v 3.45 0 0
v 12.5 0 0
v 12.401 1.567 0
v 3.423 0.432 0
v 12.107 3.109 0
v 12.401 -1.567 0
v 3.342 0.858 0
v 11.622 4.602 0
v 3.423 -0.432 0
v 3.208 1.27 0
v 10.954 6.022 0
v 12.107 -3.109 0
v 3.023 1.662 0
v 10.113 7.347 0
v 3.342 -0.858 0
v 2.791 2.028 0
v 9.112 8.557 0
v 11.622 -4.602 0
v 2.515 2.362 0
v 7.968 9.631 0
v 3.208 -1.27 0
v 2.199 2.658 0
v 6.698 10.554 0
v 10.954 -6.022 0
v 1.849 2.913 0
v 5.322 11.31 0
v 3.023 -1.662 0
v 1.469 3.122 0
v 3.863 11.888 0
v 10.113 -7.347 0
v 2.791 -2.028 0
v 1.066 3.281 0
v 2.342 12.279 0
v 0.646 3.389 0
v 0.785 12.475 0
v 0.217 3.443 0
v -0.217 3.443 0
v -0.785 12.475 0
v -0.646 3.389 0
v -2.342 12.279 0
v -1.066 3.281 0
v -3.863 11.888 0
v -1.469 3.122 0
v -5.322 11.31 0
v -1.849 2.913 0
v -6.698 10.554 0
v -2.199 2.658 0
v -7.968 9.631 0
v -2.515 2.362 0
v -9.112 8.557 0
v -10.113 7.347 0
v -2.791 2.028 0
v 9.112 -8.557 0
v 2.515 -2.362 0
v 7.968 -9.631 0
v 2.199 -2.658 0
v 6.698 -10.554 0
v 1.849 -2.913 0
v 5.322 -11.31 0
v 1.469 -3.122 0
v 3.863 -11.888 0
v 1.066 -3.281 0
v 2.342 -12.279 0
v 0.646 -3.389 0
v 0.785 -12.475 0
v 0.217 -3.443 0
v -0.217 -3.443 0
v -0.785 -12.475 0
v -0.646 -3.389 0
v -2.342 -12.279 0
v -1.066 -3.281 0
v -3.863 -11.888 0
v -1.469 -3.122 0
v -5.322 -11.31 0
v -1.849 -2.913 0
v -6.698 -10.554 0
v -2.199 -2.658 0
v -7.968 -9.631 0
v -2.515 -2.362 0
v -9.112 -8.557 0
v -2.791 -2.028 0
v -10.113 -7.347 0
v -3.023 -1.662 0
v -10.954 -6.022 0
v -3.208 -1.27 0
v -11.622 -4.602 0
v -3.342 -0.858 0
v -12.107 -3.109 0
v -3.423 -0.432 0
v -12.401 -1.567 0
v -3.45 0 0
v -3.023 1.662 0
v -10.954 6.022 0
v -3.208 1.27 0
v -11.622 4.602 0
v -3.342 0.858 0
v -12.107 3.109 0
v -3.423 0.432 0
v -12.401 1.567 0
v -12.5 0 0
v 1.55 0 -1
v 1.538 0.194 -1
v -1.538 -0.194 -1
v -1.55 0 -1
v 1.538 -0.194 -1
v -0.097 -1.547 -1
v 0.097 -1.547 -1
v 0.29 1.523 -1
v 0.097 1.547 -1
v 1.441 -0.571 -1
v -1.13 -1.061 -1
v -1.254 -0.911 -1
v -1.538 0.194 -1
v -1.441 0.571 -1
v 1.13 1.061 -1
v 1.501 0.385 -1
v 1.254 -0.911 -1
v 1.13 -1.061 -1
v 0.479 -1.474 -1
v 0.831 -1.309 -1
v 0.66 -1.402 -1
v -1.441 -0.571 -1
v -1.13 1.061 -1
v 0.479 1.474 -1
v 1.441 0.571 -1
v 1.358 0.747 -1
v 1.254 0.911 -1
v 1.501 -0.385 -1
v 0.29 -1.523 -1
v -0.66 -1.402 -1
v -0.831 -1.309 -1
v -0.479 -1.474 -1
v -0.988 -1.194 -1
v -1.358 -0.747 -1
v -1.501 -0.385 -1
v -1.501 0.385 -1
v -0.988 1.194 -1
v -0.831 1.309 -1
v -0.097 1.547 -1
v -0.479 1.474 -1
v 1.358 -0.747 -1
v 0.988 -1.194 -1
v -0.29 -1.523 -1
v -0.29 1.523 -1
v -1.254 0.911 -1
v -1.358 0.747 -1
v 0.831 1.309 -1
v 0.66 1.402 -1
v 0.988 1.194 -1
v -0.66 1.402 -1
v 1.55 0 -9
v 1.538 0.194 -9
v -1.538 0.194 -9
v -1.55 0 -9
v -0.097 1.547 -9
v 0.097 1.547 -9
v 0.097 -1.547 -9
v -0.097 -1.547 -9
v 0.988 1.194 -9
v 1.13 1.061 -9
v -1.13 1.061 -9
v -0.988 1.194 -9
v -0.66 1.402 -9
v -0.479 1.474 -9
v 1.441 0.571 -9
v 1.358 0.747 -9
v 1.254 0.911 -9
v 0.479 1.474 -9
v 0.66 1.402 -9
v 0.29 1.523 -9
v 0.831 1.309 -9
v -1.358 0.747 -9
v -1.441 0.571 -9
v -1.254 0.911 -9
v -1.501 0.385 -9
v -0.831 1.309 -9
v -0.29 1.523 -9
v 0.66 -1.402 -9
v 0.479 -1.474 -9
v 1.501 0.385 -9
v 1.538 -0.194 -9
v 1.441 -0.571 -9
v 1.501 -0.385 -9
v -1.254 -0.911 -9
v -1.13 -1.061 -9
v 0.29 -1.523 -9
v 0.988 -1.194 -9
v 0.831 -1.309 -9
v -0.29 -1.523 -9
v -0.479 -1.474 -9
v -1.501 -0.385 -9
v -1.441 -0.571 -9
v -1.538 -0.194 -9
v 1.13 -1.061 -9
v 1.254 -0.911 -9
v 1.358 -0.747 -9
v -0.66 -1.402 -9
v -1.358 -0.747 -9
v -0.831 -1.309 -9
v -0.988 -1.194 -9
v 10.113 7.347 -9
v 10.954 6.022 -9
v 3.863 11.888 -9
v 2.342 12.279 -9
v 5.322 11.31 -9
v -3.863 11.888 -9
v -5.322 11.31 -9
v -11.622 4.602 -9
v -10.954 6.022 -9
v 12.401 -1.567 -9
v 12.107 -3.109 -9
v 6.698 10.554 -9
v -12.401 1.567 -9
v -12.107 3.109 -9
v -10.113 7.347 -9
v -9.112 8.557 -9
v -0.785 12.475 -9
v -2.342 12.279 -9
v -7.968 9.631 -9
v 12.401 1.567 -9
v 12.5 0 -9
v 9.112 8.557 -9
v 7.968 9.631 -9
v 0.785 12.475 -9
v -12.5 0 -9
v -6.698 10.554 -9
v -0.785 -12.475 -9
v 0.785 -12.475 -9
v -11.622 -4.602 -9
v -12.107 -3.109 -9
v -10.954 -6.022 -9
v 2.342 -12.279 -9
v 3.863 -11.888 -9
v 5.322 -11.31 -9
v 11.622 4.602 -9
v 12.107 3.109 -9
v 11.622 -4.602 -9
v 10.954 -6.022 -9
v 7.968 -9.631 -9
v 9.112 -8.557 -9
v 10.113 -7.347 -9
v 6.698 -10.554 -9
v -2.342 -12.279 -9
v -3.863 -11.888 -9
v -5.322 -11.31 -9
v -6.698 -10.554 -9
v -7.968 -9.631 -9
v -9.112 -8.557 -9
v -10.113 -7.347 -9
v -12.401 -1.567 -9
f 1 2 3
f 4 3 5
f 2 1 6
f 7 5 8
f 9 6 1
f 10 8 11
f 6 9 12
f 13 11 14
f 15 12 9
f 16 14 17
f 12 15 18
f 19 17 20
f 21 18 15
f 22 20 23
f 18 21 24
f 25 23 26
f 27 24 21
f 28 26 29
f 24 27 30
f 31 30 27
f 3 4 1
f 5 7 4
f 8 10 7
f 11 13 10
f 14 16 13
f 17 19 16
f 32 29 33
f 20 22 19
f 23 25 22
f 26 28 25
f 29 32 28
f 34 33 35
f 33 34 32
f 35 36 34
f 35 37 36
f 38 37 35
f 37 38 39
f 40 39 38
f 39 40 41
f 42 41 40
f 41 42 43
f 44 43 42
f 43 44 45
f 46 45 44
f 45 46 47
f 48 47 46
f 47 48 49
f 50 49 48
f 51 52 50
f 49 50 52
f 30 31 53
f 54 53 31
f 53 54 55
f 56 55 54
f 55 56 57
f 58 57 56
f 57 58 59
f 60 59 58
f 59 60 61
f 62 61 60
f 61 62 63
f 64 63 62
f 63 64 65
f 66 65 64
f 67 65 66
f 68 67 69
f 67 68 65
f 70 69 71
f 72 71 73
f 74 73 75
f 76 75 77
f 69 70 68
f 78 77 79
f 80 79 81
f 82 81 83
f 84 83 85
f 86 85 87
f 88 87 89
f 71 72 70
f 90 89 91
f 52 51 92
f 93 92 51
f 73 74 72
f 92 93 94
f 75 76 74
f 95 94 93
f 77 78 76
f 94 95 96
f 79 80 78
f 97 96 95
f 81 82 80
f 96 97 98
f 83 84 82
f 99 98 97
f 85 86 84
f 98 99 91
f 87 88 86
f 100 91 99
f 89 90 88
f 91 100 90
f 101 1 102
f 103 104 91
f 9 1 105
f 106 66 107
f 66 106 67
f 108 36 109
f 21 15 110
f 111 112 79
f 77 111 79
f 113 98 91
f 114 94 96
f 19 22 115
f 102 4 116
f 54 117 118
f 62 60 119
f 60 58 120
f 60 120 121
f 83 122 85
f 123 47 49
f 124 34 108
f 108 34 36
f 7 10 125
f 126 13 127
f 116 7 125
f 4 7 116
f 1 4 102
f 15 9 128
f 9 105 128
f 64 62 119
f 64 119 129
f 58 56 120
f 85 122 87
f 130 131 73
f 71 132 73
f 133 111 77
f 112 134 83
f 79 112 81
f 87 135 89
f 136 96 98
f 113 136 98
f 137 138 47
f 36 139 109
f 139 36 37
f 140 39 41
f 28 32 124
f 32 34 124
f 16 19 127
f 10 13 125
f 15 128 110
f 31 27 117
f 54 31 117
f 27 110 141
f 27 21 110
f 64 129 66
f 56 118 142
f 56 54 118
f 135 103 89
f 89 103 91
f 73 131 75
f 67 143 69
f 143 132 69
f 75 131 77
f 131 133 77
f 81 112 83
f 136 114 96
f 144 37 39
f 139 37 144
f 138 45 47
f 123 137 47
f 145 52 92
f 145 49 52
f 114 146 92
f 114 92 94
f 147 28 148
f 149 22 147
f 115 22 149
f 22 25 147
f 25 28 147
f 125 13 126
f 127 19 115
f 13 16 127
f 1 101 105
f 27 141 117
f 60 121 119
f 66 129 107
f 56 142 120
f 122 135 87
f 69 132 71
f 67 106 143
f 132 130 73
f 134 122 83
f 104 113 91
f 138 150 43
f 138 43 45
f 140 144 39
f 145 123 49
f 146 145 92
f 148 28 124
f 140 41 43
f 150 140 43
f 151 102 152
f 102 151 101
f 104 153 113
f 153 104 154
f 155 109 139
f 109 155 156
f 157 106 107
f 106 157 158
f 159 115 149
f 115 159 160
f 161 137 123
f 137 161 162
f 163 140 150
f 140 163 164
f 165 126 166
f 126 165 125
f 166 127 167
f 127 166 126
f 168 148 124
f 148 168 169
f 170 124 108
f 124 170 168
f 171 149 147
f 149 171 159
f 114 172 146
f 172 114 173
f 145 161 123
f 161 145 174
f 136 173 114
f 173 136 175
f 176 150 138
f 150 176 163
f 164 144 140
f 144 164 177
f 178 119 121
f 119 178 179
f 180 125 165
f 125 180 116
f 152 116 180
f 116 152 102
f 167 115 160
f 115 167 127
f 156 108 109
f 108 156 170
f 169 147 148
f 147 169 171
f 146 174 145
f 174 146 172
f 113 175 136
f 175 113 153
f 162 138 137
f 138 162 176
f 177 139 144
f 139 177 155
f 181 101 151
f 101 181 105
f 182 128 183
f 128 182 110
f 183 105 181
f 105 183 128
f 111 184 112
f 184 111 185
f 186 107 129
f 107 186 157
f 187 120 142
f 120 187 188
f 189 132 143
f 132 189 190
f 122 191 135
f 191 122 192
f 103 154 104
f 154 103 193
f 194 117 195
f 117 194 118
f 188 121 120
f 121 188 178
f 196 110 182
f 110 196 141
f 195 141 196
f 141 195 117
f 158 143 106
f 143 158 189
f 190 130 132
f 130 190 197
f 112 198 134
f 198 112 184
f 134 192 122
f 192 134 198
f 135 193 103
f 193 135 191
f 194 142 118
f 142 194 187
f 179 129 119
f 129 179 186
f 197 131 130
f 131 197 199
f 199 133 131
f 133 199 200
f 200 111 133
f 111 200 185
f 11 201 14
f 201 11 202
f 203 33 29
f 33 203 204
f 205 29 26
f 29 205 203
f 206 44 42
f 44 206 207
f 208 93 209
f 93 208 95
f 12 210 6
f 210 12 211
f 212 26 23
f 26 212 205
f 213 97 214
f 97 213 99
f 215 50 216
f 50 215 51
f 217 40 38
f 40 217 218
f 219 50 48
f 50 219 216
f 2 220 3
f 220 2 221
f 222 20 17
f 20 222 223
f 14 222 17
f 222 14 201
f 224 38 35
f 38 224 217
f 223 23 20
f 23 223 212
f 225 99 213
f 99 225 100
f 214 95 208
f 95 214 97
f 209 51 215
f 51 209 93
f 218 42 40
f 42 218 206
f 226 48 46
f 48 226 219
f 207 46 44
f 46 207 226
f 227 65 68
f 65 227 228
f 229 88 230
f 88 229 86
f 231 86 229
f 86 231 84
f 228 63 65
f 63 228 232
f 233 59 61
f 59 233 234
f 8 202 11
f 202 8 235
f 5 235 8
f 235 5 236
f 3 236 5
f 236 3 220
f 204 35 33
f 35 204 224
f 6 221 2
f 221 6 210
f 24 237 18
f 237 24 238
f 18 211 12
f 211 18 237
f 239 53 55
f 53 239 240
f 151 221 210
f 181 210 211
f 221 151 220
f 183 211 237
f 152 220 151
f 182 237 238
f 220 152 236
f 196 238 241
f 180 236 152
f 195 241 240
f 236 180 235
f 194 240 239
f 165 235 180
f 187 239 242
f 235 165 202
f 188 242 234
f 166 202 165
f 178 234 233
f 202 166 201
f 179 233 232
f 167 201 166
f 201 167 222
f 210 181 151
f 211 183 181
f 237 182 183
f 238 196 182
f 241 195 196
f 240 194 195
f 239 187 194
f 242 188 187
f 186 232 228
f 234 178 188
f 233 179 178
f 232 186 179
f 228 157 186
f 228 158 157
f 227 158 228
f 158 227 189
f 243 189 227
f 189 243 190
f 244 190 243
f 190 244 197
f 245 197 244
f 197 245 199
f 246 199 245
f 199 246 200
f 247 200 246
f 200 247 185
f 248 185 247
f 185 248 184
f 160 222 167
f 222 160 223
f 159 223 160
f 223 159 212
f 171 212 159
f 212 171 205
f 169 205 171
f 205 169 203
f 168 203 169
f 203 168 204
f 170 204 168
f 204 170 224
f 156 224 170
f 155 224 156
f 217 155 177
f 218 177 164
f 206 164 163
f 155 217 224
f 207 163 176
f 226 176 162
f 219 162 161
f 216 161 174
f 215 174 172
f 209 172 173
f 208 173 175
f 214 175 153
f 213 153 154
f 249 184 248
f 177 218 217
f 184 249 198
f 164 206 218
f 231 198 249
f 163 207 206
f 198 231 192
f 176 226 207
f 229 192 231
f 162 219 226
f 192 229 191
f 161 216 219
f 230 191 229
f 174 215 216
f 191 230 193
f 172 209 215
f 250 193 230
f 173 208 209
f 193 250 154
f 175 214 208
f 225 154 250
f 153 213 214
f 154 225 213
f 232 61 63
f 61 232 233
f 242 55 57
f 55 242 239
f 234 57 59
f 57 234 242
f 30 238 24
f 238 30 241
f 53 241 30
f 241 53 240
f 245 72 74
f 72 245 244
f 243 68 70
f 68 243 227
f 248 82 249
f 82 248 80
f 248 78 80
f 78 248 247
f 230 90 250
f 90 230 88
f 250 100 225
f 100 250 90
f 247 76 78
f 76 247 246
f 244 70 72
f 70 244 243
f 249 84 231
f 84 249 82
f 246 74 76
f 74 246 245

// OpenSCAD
$fn = 50;

difference() {
	union() {
		translate(v = [0, 0, -9.0]) {
			cylinder(h = 9, r = 12.5);
		}
	}
	union() {
		translate(v = [0, 0, 0]) {
			rotate(a = [0, 0, 0]) {
				difference() {
					union() {
						translate(v = [0, 0, -12.0]) {
							cylinder(h = 12, r = 1.25);
						}
						translate(v = [0, 0, -1.0]) {
							cylinder(h = 1.0, r1 = 1.55, r2 = 3.45);
						}
						translate(v = [0, 0, -12.0]) {
							cylinder(h = 12, r = 1.55);
						}
						translate(v = [0, 0, -12.0]) {
							cylinder(h = 12, r = 1.25);
						}
					}
					union();
				}
			}
		}
	}
}
